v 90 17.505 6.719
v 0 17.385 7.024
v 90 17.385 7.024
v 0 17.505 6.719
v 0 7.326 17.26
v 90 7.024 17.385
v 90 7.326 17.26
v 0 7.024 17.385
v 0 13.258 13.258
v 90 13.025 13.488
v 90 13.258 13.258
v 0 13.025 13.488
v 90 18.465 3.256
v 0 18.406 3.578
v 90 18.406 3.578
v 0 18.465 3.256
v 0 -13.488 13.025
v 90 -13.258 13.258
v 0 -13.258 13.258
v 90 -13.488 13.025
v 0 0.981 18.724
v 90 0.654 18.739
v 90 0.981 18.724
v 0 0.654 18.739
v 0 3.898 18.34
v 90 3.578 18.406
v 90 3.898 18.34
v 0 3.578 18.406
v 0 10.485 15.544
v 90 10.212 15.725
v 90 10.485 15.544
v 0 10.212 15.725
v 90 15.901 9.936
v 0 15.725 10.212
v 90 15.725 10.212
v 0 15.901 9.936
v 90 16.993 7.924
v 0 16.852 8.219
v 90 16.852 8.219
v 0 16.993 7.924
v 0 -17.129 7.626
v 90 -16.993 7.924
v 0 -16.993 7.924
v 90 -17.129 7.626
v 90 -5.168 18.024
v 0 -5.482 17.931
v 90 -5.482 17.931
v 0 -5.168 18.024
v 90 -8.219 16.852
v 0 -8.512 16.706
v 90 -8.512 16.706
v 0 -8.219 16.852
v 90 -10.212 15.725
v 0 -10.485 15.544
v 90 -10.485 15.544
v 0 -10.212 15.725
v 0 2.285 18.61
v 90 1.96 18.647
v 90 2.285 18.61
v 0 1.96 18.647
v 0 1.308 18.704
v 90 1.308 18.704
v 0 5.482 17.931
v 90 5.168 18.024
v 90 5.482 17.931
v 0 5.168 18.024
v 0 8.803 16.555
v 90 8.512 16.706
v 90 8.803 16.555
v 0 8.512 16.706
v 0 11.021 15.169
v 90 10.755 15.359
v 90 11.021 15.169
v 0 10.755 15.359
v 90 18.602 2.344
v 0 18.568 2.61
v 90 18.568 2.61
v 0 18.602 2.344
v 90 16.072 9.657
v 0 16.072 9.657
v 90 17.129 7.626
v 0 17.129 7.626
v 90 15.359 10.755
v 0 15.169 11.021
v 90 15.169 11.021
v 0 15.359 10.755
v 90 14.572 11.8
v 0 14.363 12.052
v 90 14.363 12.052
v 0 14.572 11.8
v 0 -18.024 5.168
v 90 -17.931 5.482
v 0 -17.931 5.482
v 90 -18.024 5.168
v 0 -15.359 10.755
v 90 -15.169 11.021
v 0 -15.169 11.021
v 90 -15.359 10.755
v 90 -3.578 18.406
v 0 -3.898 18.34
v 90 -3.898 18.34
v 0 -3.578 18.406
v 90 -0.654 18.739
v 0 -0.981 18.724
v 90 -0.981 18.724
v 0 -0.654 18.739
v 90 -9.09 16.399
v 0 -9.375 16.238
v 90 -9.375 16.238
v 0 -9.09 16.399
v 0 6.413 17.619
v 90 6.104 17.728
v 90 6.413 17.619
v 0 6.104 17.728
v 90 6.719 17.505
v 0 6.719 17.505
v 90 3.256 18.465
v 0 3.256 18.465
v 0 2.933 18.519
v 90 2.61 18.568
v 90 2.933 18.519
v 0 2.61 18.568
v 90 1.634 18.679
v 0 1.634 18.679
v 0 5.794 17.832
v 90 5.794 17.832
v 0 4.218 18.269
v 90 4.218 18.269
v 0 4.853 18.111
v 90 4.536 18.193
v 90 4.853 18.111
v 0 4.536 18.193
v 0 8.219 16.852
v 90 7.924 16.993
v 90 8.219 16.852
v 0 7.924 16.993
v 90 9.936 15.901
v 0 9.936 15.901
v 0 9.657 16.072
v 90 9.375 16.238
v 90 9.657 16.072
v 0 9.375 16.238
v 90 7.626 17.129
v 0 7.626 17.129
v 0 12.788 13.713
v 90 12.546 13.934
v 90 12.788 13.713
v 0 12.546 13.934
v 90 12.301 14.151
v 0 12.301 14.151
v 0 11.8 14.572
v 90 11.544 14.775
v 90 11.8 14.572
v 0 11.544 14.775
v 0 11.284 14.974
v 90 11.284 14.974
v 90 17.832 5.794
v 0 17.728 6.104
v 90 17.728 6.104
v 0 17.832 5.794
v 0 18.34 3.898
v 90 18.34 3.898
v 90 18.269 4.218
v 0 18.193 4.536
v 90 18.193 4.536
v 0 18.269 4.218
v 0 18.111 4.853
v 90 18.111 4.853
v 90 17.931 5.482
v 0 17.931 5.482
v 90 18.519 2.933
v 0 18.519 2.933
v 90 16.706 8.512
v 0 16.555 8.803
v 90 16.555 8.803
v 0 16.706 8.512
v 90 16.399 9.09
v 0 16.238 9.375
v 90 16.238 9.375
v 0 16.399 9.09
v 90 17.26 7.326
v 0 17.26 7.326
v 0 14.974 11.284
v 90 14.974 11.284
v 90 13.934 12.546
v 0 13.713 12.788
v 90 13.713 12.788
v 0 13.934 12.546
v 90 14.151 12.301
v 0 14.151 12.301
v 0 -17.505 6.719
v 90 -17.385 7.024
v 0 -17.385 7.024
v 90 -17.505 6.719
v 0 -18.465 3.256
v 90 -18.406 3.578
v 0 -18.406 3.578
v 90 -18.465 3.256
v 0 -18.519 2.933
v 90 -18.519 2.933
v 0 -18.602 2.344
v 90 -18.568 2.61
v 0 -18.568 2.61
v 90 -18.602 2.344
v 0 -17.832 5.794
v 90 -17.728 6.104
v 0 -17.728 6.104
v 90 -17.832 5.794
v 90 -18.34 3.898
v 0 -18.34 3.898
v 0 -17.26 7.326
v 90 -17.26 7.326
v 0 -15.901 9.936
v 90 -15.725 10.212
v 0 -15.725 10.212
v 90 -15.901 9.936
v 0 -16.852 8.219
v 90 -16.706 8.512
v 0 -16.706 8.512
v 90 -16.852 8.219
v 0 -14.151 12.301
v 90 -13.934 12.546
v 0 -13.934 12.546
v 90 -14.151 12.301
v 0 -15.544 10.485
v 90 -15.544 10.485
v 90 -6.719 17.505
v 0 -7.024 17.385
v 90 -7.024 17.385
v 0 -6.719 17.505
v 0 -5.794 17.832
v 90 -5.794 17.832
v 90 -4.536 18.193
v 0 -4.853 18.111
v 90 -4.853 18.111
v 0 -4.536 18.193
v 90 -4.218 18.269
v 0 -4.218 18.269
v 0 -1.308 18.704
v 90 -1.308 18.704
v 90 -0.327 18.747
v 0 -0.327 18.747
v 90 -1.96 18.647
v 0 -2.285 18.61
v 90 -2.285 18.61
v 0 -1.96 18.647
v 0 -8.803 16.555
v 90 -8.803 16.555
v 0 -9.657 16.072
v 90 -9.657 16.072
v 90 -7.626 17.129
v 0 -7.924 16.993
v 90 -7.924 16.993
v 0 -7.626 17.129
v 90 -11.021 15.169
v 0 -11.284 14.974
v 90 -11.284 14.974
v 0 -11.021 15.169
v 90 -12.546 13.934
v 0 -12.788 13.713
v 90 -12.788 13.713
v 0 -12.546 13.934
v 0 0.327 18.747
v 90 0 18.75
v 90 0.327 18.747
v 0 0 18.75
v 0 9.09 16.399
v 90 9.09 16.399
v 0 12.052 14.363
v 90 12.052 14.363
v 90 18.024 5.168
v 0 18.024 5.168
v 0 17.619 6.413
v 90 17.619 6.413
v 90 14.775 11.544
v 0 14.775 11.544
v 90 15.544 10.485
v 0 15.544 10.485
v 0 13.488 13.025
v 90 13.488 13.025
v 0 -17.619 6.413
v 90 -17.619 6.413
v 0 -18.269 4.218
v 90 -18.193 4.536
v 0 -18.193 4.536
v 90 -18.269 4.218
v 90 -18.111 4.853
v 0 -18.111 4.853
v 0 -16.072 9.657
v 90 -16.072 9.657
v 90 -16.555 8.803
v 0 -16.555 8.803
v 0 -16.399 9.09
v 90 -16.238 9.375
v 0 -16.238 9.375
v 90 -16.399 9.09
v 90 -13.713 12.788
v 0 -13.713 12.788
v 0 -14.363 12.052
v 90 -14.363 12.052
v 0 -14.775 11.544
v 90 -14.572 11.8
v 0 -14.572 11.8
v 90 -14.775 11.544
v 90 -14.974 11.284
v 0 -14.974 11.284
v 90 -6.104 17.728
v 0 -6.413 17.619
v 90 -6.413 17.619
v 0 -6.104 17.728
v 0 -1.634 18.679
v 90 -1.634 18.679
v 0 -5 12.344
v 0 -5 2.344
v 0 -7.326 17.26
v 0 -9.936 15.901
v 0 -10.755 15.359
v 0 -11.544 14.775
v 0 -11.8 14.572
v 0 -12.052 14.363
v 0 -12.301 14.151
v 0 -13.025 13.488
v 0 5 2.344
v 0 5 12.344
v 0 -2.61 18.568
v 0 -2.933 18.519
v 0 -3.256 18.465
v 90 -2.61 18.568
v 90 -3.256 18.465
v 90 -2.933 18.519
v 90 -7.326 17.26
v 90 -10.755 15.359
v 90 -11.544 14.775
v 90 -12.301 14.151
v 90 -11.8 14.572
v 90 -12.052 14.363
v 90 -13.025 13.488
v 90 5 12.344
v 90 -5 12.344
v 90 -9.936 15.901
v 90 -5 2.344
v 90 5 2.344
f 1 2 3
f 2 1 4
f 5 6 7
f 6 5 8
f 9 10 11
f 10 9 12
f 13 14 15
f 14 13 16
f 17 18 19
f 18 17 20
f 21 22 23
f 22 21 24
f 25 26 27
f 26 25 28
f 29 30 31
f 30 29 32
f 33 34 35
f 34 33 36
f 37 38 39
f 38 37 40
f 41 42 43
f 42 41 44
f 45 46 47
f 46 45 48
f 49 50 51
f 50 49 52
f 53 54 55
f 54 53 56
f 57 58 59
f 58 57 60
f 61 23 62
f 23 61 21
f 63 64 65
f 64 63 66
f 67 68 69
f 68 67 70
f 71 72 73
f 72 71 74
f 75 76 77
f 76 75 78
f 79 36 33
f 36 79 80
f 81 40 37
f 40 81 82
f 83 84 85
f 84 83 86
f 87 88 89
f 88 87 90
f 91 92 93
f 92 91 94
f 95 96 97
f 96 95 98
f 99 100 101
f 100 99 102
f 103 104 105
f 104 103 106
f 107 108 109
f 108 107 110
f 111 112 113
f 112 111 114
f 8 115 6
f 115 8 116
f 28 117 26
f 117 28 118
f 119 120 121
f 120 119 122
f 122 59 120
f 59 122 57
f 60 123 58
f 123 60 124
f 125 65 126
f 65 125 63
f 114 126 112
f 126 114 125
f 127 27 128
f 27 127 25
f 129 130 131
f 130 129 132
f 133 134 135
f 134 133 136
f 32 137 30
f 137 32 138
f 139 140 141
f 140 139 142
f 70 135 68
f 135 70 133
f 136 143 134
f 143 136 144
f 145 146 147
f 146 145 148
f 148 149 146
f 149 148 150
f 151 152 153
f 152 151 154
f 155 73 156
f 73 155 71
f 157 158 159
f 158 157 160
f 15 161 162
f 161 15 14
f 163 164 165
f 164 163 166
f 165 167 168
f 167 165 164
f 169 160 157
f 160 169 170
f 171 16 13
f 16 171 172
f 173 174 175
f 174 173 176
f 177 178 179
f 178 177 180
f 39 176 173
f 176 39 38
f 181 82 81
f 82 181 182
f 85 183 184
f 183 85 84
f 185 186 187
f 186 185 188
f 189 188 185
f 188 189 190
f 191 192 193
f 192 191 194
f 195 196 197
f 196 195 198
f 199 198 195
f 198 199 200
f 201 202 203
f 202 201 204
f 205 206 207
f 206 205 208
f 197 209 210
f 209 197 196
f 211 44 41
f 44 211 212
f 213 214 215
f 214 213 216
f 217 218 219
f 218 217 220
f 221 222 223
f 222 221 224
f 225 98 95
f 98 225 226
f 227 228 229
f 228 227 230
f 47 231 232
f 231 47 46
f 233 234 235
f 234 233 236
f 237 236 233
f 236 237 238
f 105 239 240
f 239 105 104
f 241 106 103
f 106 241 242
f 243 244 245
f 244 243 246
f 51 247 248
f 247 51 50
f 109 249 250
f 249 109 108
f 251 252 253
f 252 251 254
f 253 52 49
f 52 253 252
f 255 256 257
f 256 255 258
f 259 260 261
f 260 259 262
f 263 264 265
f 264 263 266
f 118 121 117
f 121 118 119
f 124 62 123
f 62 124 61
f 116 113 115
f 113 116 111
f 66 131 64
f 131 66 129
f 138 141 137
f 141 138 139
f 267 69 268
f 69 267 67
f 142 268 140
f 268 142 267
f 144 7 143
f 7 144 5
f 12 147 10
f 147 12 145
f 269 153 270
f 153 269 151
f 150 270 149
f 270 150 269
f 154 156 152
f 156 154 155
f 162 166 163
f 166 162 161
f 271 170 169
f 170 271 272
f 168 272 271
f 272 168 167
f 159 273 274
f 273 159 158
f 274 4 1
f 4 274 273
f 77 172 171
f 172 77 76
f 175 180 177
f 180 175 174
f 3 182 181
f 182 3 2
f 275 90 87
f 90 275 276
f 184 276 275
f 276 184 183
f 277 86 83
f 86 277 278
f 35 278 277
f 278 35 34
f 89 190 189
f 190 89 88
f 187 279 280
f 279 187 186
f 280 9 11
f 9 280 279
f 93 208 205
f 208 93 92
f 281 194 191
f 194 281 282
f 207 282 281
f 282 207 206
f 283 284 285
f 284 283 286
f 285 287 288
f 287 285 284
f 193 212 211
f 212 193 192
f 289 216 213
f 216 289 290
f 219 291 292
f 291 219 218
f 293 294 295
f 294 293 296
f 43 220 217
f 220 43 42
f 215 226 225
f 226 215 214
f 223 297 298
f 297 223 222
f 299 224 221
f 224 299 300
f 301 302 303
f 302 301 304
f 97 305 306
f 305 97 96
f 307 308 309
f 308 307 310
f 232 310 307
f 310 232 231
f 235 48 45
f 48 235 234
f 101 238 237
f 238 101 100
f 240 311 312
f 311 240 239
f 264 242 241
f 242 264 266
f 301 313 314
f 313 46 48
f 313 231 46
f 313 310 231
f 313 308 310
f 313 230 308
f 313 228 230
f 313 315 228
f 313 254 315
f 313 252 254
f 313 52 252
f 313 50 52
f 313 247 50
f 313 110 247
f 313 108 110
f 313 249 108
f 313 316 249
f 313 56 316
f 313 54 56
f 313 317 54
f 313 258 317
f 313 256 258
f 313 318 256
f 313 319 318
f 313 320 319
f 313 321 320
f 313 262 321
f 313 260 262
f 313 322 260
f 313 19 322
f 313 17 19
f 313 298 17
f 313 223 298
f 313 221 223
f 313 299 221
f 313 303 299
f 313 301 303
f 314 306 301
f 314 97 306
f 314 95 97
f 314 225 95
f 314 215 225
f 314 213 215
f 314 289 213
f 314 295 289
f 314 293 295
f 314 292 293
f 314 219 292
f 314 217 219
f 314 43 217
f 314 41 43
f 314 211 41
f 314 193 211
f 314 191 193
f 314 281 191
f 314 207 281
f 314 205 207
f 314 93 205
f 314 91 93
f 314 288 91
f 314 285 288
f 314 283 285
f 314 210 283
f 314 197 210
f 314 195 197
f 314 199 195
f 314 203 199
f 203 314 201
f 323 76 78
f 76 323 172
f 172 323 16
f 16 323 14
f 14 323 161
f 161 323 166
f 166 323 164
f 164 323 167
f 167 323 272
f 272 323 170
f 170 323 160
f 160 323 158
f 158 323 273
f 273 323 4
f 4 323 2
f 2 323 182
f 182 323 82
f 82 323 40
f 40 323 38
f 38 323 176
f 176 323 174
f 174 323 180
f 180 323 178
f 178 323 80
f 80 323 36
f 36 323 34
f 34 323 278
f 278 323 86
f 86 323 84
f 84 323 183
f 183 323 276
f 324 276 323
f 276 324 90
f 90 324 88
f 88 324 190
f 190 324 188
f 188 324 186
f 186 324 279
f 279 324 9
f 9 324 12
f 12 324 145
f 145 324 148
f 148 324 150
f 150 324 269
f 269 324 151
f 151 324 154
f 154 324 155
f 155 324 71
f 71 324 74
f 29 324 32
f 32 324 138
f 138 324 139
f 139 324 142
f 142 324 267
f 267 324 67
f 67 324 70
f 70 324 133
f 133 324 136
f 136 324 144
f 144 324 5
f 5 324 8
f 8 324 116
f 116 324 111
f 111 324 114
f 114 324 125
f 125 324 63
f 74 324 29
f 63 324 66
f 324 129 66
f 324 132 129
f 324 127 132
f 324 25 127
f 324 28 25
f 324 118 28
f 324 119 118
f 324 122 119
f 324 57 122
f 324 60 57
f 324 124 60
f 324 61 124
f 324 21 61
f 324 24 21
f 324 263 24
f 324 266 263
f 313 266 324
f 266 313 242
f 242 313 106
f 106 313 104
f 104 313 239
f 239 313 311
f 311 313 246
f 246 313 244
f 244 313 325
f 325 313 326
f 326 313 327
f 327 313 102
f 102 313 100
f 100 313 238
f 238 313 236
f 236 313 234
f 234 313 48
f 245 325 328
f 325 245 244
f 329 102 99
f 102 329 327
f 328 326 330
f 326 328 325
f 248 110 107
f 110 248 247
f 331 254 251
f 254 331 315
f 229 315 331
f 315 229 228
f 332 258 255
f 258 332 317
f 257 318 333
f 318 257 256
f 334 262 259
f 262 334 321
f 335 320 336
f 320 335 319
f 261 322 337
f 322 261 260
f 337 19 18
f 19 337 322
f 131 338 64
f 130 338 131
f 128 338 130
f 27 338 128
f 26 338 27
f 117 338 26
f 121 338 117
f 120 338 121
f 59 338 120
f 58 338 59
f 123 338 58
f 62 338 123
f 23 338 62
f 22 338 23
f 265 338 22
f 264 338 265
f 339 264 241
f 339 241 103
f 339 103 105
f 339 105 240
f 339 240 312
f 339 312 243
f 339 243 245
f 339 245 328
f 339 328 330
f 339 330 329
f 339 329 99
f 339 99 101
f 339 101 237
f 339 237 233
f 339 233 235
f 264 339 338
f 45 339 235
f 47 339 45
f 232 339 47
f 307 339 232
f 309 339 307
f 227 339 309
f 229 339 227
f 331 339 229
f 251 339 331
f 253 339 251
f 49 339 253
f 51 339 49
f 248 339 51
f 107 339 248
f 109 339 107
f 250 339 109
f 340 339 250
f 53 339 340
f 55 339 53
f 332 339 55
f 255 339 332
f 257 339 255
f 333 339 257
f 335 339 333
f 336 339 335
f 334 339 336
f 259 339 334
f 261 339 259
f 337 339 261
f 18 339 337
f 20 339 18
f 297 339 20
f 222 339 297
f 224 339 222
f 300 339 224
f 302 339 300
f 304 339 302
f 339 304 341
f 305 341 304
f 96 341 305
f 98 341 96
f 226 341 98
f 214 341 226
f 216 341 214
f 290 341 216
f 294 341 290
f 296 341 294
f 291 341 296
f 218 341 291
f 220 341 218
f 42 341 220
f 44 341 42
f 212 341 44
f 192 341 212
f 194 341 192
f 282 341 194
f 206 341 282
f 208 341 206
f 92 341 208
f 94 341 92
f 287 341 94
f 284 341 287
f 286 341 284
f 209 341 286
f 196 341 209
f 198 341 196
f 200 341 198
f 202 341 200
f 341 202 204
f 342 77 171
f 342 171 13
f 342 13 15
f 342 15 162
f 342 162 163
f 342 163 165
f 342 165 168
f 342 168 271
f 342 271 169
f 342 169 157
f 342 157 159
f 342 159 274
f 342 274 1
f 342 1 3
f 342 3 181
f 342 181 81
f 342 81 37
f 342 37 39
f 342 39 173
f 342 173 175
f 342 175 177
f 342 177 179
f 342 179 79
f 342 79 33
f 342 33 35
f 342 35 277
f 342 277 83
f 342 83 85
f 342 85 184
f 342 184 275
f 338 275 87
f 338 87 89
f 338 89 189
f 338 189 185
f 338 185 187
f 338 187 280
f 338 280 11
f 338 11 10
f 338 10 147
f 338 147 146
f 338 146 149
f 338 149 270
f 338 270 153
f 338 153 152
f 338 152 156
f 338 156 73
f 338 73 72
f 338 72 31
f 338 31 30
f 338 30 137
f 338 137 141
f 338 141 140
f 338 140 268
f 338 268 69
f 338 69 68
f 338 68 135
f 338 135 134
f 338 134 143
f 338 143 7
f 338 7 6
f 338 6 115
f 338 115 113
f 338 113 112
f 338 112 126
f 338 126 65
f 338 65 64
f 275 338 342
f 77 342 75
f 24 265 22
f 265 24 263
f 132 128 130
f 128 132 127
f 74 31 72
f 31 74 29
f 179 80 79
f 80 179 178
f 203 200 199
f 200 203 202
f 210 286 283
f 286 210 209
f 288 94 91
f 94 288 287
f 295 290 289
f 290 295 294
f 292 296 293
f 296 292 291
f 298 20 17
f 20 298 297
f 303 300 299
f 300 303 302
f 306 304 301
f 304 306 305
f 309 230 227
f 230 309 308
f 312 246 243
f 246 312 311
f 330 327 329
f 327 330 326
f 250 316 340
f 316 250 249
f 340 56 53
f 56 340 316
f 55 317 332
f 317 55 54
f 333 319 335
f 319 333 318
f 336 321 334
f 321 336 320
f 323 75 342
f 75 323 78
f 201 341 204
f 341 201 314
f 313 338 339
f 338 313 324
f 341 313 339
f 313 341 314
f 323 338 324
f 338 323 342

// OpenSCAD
//
// inspired by 
//   http://www.thingiverse.com/thing:1353400  - Lulzbot Mini filament spool bushing
//   by ggrieves is licensed under the Creative Commons - Attribution license.

// Email: dpcrook@users.noreply.github.com


// resized dimensions to fit spools with a inner diameter of ~38mm

spool_inner_r=37.5/2;
length=90;

holder_w = 10;
holder_h = holder_w;

cut_offset = (1/8)*spool_inner_r;

// small number
e=.02;


rotate(a=[0,90,0]) 
difference(){
    cylinder(length, spool_inner_r, spool_inner_r, $fn=360);
    // chop off over half of circle, making semi-circle cylinder
    translate ([-cut_offset, -(spool_inner_r+e),-e]) cube([2*(spool_inner_r+e), 2*(spool_inner_r+e), length+2*e]);
    // cut out notch to sit on spool holder arm
    translate ([-(cut_offset + holder_h), -holder_w/2, -e]) cube([holder_w+e, holder_h, length+2*e]);
};
